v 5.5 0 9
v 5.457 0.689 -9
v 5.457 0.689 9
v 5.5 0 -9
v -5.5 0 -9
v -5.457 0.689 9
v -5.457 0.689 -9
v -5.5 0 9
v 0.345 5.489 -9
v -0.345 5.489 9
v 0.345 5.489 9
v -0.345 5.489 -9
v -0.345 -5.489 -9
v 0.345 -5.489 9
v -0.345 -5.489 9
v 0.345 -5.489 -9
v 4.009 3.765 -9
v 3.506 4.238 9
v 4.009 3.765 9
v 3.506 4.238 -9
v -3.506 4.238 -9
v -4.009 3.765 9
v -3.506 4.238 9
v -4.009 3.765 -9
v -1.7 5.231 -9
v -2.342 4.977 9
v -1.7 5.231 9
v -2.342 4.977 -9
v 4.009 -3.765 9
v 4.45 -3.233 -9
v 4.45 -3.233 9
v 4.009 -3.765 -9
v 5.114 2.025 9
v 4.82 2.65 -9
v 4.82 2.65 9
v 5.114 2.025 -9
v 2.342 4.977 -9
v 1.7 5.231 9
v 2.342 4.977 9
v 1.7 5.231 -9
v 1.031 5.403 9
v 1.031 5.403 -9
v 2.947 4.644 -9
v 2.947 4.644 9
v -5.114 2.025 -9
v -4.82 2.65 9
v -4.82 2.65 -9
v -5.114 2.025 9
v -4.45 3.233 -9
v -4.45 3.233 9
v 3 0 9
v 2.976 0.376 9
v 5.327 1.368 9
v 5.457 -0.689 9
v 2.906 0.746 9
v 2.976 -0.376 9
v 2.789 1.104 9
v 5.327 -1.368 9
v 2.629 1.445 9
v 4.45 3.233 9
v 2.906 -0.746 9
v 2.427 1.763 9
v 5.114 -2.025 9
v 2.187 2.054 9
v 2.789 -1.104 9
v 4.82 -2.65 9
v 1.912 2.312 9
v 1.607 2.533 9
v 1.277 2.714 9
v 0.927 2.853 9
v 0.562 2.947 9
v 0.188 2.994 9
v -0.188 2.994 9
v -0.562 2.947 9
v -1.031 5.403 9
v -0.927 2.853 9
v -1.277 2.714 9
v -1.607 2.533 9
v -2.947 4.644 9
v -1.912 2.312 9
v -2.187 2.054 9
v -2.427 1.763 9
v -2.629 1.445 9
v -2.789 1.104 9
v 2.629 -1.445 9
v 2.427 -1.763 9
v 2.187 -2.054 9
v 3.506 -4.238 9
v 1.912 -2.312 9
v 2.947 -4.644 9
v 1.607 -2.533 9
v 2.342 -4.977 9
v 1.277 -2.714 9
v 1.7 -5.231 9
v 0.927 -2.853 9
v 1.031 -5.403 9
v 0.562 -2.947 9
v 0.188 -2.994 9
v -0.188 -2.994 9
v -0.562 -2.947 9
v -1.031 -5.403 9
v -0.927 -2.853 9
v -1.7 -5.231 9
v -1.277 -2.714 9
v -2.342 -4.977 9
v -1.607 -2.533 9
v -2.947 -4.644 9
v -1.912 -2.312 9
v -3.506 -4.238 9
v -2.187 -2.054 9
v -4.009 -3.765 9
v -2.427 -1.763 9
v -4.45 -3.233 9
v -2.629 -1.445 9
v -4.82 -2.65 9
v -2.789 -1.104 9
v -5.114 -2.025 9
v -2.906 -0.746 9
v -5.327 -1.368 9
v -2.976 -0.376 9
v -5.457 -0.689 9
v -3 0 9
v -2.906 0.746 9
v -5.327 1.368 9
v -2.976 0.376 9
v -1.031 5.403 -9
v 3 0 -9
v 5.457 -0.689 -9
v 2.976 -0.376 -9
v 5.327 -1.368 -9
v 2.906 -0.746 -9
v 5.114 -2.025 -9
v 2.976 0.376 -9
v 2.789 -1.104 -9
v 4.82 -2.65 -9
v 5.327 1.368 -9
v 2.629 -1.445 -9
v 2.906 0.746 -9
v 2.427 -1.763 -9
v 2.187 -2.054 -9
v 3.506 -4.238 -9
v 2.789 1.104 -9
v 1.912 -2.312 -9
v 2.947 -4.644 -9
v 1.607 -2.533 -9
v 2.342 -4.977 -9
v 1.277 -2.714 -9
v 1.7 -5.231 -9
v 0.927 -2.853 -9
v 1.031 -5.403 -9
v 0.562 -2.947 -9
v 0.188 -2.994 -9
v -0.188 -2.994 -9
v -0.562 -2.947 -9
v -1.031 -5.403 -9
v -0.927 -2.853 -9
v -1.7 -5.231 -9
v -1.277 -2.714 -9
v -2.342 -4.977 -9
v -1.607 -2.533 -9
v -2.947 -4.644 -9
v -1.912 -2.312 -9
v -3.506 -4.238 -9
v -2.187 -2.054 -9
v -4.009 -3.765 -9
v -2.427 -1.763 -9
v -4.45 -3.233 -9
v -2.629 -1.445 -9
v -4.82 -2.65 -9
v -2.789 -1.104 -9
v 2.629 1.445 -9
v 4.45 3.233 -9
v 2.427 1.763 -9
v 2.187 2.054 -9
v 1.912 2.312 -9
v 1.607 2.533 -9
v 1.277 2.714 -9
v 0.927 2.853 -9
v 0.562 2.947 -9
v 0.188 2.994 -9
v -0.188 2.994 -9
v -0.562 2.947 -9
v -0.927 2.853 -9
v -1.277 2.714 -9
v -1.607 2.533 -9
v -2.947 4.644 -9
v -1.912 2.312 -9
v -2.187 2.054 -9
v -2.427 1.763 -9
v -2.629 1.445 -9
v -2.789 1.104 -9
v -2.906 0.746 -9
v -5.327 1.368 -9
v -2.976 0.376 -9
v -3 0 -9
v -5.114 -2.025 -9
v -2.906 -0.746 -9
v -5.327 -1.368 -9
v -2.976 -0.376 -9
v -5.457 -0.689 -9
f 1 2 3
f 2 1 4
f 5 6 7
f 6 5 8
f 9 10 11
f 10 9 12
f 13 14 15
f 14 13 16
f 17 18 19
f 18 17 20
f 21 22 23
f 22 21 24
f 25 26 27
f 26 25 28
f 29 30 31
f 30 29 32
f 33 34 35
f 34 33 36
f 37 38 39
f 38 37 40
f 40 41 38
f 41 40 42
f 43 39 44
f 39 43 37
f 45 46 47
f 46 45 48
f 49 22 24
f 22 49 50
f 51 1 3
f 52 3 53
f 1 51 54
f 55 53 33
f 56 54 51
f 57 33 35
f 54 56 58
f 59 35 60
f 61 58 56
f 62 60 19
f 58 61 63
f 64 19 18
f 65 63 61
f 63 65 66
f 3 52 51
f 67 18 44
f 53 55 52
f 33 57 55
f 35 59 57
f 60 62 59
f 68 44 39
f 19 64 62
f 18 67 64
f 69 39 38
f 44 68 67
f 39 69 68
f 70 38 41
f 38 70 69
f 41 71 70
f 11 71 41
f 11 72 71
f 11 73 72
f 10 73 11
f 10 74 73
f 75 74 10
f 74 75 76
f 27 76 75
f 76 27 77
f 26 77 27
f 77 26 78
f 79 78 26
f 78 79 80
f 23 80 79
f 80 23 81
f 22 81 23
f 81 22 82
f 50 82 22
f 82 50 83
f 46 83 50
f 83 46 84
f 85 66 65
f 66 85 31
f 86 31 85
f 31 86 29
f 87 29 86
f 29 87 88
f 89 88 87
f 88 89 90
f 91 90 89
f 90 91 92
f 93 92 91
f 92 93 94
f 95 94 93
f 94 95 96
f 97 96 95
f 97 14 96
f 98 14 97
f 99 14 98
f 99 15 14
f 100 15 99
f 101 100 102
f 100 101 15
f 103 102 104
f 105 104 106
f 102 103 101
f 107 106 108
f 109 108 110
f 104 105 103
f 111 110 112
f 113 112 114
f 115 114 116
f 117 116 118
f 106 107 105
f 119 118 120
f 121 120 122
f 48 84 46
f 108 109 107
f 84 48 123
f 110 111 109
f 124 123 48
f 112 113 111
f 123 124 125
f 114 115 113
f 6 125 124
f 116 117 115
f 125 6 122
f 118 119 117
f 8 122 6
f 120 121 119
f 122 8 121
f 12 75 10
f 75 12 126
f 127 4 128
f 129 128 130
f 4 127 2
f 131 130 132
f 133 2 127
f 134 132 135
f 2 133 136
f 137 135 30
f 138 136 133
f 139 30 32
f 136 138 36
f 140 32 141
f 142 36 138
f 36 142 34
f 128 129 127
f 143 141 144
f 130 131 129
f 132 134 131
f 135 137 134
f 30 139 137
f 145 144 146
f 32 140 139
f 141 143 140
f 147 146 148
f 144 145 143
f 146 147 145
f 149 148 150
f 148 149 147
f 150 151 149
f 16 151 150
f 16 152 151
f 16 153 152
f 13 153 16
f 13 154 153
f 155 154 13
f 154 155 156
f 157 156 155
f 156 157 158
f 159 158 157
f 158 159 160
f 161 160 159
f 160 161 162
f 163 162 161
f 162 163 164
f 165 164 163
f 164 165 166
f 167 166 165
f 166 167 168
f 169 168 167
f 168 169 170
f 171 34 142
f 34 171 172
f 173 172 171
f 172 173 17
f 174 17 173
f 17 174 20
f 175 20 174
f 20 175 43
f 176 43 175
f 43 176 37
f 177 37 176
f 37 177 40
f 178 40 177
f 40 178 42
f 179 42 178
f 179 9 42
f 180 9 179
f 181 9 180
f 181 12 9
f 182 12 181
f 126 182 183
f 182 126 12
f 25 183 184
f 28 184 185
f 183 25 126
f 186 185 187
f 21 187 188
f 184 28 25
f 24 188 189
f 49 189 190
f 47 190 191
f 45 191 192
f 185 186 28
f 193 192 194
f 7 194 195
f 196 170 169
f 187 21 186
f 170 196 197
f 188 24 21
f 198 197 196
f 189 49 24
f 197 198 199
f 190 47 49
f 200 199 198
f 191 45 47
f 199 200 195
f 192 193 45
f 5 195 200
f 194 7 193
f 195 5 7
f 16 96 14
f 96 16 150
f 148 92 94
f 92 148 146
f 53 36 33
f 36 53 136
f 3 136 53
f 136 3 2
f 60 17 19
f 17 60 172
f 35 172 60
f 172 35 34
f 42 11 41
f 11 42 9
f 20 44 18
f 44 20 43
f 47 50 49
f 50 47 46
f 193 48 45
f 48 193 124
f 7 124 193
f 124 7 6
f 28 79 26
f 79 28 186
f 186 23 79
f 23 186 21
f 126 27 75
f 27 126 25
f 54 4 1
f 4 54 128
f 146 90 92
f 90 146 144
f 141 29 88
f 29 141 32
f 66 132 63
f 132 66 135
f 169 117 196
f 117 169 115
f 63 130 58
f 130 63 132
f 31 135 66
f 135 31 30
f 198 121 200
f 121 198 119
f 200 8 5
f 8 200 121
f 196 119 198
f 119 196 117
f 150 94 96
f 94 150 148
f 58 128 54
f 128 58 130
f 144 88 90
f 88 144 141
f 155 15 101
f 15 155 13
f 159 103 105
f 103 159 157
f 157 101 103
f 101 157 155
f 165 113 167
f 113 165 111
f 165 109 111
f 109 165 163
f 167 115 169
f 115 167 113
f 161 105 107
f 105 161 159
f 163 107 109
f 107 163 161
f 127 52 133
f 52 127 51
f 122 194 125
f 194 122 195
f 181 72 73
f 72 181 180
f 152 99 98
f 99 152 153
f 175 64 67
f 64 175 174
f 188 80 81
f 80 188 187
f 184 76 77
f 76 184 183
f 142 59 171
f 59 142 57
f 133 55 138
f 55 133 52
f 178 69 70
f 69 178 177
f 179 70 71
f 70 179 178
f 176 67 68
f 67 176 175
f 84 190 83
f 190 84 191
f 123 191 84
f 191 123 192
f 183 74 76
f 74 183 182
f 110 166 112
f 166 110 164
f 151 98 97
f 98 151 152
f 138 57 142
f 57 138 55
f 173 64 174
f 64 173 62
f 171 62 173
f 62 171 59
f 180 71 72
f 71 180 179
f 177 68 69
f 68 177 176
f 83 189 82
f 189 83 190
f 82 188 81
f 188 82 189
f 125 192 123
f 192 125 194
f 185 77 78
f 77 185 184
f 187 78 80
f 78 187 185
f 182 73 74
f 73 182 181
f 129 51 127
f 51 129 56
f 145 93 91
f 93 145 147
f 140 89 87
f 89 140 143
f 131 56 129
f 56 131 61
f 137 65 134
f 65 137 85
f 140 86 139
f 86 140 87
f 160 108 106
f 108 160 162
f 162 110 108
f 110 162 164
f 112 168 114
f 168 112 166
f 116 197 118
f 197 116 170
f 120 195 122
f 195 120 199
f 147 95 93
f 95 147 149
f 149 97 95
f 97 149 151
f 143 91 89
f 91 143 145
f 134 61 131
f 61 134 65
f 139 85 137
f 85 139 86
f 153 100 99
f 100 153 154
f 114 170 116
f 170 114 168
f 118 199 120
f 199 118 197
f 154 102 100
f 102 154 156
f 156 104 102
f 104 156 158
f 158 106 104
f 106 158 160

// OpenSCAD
$fn = 50;


difference() {
	union() {
		translate(v = [0, 0, -9.0000000000]) {
			cylinder(h = 18, r = 5.5000000000);
		}
	}
	union() {
		translate(v = [0, 0, -100.0000000000]) {
			cylinder(h = 200, r = 3);
		}
	}
}
